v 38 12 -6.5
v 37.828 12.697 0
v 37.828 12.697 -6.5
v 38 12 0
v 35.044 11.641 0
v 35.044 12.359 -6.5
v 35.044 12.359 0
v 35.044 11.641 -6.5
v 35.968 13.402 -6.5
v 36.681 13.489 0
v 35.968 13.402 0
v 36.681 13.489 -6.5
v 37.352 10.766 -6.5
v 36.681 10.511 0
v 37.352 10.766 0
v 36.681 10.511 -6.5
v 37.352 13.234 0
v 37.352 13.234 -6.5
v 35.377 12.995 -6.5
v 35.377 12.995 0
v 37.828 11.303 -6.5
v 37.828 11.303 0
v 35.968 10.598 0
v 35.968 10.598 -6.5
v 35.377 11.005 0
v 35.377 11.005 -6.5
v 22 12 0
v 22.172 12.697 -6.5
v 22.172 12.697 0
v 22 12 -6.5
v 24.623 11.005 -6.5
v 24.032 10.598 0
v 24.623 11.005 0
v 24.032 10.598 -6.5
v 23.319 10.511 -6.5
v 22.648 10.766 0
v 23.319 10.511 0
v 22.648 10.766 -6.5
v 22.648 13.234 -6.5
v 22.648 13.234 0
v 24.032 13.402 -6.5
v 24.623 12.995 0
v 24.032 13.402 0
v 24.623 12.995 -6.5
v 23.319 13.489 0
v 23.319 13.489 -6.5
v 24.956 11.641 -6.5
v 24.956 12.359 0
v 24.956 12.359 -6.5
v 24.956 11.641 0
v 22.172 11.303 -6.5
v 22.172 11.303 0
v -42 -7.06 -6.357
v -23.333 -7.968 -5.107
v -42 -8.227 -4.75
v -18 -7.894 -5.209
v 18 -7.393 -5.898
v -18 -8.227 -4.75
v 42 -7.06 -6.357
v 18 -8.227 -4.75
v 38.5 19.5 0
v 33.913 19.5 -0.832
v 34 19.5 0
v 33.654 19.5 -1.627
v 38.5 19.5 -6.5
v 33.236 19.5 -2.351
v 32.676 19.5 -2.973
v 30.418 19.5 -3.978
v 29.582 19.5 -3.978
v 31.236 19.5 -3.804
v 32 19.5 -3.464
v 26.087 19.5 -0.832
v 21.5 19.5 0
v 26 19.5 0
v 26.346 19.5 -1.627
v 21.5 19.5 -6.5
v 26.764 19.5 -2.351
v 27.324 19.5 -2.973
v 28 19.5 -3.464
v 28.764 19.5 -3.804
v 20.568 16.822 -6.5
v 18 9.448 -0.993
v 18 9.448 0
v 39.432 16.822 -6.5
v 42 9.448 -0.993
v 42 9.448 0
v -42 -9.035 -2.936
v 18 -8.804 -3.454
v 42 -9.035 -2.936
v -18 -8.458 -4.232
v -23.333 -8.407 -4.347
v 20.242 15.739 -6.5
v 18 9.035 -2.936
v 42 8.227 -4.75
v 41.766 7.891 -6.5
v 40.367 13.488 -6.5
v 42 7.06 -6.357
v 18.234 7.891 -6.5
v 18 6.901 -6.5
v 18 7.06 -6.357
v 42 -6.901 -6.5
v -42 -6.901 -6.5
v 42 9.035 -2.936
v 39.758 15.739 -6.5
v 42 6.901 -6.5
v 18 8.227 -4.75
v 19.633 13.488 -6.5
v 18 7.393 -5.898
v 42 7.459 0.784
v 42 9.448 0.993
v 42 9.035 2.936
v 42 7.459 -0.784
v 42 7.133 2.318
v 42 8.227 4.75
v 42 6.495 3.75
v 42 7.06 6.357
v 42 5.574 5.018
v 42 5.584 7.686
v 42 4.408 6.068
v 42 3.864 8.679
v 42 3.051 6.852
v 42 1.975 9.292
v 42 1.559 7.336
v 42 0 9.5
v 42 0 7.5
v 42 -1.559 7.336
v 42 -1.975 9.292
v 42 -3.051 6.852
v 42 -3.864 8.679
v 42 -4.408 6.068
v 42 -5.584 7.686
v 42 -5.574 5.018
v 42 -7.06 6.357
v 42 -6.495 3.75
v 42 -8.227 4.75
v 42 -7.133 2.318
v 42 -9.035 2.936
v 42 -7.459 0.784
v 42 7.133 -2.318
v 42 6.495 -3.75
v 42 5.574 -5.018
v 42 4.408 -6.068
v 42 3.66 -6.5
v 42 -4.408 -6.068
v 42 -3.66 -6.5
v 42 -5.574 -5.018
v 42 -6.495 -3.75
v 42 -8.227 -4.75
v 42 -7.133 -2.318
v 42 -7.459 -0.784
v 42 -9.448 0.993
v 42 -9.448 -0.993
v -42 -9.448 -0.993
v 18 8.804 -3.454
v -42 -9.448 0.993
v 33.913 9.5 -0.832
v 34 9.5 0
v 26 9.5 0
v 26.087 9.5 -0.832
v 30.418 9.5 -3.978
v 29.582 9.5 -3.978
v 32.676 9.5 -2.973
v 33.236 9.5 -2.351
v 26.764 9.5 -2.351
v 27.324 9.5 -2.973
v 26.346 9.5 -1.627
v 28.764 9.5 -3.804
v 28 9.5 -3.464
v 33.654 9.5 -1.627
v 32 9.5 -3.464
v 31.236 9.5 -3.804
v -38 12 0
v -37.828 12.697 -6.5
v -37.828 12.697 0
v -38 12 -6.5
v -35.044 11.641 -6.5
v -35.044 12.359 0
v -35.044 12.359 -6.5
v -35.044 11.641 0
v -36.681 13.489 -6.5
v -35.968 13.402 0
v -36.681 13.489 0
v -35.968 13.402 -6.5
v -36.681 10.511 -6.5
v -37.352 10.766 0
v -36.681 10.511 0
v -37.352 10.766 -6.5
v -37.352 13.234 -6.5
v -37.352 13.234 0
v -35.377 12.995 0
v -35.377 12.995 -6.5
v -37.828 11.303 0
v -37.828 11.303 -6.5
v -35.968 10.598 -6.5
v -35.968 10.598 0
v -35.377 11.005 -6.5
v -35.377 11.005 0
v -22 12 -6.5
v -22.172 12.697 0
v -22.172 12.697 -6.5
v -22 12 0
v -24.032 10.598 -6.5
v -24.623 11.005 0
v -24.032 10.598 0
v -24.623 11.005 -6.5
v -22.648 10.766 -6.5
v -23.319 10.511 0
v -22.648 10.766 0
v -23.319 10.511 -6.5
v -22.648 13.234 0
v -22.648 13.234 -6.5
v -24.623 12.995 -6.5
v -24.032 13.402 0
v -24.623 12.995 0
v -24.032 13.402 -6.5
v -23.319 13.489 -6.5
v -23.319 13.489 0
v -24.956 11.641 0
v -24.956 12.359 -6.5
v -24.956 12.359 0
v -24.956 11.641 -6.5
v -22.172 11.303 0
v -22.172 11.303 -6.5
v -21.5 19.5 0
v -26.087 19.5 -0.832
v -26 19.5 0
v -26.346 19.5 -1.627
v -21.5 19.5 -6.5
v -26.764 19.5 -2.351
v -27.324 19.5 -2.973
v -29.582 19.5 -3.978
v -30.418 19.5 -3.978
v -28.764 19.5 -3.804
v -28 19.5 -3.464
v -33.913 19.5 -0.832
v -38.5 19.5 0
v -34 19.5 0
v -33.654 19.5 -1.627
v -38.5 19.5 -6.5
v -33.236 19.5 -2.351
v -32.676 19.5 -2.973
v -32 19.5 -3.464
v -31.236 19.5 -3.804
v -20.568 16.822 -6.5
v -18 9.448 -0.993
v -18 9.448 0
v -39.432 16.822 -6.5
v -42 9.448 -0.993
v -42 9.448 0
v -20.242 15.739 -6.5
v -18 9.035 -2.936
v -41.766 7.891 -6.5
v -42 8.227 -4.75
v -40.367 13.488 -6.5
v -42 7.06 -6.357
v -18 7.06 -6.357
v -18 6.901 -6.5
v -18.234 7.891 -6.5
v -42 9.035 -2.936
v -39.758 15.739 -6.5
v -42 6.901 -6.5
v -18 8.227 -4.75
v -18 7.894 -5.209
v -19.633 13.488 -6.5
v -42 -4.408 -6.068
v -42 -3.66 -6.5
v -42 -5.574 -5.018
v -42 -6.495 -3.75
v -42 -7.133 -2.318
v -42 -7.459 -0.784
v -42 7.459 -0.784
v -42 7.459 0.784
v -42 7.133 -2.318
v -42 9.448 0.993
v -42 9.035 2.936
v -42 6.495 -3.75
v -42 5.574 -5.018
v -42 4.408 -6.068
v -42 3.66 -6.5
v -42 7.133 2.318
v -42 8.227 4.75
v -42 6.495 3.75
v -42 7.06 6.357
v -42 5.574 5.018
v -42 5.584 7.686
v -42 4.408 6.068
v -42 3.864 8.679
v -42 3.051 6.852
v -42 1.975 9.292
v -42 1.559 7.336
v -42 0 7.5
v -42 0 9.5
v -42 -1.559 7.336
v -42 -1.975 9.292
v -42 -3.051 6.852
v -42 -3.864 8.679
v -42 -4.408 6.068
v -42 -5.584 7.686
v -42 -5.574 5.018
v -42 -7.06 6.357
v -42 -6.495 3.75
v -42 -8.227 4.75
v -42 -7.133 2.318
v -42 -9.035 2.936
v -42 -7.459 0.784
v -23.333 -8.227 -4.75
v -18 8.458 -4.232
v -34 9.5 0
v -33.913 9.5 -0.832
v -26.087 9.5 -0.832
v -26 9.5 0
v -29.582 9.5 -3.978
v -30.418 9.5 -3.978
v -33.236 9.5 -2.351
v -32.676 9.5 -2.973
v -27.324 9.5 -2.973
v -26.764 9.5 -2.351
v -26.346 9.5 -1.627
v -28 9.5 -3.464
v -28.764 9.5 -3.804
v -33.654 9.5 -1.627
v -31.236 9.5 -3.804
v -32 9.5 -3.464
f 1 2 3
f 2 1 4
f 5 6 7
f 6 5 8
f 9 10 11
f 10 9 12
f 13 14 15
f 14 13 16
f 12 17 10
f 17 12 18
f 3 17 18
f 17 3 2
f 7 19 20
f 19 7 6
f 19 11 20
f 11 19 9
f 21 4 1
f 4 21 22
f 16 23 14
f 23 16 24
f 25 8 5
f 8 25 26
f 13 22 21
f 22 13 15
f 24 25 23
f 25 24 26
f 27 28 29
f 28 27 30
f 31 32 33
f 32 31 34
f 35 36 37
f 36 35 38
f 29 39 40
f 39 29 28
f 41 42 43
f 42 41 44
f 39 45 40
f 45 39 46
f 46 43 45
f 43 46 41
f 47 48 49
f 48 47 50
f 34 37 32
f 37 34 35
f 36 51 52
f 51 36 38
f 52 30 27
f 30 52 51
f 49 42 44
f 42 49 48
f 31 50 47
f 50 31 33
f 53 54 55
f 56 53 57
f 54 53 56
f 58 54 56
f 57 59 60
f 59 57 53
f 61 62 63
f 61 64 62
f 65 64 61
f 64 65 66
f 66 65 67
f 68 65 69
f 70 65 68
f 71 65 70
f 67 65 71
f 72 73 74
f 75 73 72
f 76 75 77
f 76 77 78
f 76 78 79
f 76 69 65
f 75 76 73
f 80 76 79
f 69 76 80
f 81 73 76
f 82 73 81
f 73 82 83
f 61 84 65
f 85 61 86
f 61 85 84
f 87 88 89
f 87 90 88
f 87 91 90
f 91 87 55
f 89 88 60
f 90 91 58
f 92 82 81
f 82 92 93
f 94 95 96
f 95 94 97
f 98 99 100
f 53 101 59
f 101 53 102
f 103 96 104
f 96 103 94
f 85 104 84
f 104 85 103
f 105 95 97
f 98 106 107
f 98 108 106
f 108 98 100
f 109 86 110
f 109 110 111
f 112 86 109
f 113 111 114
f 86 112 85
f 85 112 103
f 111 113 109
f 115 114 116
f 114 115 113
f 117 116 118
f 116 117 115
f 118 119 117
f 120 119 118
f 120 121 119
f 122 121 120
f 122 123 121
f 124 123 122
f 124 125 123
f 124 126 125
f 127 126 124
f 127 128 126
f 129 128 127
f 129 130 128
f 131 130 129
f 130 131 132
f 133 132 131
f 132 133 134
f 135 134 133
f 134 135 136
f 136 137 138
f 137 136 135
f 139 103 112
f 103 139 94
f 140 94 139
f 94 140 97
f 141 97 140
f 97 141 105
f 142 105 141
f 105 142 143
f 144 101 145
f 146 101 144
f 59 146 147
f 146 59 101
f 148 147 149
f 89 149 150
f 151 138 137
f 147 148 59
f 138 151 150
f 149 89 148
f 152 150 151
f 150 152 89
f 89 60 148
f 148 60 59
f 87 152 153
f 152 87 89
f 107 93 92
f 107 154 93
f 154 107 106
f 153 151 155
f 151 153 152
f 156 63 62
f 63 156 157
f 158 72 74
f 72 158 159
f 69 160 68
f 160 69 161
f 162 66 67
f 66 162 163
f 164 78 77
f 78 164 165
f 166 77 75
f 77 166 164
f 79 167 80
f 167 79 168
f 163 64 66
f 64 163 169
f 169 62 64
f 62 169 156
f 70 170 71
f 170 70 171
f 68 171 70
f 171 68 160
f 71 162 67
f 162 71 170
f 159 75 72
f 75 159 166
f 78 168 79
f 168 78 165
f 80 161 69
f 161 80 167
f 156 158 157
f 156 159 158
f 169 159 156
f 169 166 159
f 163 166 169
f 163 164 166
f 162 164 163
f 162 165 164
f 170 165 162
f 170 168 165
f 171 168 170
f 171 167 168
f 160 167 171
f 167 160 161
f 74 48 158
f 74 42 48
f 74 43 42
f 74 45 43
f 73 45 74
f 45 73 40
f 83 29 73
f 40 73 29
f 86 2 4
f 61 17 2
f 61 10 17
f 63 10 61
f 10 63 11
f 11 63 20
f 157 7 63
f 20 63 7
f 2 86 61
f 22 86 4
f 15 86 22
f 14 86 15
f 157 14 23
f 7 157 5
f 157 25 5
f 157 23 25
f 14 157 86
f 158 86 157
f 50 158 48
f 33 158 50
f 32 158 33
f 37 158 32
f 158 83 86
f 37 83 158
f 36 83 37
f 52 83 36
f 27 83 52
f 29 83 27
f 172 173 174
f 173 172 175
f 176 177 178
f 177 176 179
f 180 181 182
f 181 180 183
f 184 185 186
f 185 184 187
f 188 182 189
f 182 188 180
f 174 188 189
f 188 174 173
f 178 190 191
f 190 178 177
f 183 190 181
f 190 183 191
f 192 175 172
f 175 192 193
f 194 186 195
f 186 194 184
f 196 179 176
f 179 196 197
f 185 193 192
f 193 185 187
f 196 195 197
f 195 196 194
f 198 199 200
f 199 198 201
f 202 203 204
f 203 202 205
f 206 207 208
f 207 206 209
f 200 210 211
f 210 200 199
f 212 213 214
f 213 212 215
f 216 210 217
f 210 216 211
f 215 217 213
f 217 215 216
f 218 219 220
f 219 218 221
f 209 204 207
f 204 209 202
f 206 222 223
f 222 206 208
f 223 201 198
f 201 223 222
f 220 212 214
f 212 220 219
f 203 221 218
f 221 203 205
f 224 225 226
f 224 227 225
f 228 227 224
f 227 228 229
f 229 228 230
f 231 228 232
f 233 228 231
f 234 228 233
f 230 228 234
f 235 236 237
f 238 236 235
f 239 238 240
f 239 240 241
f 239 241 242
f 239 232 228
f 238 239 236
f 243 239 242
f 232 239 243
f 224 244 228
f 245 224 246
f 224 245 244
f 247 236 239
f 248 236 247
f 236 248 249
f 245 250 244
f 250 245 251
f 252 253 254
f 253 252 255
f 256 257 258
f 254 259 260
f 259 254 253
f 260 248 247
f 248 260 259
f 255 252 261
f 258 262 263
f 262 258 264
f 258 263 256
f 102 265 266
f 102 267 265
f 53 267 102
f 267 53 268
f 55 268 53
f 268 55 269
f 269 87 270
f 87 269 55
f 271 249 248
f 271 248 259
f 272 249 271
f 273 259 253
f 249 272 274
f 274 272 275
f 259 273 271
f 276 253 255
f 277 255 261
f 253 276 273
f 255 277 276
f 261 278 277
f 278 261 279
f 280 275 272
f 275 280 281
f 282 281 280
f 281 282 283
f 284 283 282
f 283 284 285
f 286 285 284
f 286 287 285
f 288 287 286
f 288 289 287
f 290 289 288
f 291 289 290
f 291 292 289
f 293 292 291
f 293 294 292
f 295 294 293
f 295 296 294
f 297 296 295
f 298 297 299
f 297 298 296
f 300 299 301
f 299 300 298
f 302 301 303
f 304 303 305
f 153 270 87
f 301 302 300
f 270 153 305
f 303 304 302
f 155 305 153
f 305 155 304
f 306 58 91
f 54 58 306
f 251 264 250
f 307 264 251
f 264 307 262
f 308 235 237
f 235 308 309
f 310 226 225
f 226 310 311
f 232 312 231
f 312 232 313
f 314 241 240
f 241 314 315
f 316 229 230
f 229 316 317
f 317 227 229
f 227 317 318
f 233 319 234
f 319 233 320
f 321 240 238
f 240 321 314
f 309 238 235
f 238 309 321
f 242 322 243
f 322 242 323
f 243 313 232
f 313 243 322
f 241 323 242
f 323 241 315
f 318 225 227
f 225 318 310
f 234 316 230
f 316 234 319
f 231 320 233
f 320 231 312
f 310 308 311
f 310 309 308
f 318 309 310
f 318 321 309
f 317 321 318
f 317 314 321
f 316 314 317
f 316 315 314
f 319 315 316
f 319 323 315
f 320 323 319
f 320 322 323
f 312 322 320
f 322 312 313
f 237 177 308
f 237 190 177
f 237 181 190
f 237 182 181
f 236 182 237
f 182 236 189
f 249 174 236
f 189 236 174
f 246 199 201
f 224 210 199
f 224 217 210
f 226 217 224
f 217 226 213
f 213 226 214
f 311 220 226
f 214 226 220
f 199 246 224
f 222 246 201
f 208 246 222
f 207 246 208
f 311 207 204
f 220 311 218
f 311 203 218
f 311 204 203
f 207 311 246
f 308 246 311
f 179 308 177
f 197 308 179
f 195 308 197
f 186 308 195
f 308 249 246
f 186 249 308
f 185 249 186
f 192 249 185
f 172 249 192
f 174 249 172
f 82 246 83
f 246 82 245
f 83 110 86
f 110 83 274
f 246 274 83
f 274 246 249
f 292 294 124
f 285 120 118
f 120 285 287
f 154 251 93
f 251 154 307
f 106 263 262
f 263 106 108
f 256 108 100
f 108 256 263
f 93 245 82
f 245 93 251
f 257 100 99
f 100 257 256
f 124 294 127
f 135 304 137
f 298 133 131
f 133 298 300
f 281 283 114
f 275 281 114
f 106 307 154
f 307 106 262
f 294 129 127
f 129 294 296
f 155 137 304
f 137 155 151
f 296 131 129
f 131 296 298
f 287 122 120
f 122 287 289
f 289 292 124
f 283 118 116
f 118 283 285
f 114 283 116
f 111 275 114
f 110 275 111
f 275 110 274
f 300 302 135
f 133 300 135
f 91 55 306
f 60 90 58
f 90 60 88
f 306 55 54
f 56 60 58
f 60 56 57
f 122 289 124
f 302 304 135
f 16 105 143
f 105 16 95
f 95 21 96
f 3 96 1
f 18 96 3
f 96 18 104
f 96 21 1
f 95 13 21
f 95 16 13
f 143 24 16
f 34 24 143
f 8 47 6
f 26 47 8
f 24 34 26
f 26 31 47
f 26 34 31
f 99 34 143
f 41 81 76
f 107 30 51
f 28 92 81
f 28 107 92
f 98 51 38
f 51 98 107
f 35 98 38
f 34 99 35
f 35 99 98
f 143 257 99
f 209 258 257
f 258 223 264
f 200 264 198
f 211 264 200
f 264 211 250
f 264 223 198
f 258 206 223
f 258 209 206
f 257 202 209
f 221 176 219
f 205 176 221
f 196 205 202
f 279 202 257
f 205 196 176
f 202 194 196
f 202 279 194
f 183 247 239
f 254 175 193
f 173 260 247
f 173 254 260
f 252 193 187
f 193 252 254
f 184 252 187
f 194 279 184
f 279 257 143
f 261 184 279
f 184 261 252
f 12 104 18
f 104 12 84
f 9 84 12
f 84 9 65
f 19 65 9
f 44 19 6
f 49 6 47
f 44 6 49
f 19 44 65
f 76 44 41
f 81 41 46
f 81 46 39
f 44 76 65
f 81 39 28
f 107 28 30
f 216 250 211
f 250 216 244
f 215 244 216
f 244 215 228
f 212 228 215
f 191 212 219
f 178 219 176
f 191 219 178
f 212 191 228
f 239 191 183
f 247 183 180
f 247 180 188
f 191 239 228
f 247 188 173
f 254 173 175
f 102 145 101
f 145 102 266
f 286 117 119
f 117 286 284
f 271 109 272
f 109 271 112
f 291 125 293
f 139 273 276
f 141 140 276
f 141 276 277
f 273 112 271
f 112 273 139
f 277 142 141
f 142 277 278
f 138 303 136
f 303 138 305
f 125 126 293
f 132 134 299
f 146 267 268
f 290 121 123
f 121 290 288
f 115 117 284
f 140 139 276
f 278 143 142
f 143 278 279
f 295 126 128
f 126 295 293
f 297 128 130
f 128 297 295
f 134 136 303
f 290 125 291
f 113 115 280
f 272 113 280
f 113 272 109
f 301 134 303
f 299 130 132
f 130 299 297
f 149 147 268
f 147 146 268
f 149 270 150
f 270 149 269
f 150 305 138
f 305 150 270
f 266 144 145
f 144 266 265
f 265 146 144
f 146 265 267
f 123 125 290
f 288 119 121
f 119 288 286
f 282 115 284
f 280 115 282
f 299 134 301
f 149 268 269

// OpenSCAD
$fs=.75;

difference(){
	difference() {
		union() {
			difference() {
				rotate(a = [0, 90, 0]) {
					translate(v = [-0.0000000000, -0.0000000000, -42.0000000000]) {
						cylinder(d = 19.0000000000, h = 84.0000000000);
					}
				}
			}
			union() {
				translate(v = [30.0000000000, 0, 0]) {
					intersection() {
						difference() {
							hull() {
								union() {
									rotate(a = [0, 90, 0]) {
										translate(v = [-0.0000000000, -0.0000000000, -12.0000000000]) {
											cylinder(d = 19.0000000000, h = 24.0000000000);
										}
									}
									translate(v = [0, 9.5000000000, 0]) {
										translate(v = [0.0000000000, 5.0000000000, 0.0000000000]) {
											translate(v = [-8.5000000000, -5.0000000000, -8.5000000000]) {
												cube(size = [17.0000000000, 10, 17.0000000000]);
											}
										}
									}
								}
							}
							translate(v = [0, 9.5000000000, 0]) {
								rotate(a = [-90, 0, 0]) {
									cylinder(d = 8.0000000000, h = 10);
								}
							}
							union() {
								translate(v = [6.5000000000, 12, 0]) {
									translate(v = [-0.0000000000, -0.0000000000, -9.5000000000]) {
										cylinder(d = 3.0000000000, h = 19.0000000000);
									}
								}
								mirror(v = [1, 0, 0]) {
									translate(v = [6.5000000000, 12, 0]) {
										translate(v = [-0.0000000000, -0.0000000000, -9.5000000000]) {
											cylinder(d = 3.0000000000, h = 19.0000000000);
										}
									}
								}
							}
						}
						translate(v = [0, 0, -25.0000000000]) {
							translate(v = [-25.0000000000, -25.0000000000, -25.0000000000]) {
								cube(size = 50);
							}
						}
					}
				}
				mirror(v = [1, 0, 0]) {
					translate(v = [30.0000000000, 0, 0]) {
						intersection() {
							difference() {
								hull() {
									union() {
										rotate(a = [0, 90, 0]) {
											translate(v = [-0.0000000000, -0.0000000000, -12.0000000000]) {
												cylinder(d = 19.0000000000, h = 24.0000000000);
											}
										}
										translate(v = [0, 9.5000000000, 0]) {
											translate(v = [0.0000000000, 5.0000000000, 0.0000000000]) {
												translate(v = [-8.5000000000, -5.0000000000, -8.5000000000]) {
													cube(size = [17.0000000000, 10, 17.0000000000]);
												}
											}
										}
									}
								}
								translate(v = [0, 9.5000000000, 0]) {
									rotate(a = [-90, 0, 0]) {
										cylinder(d = 8.0000000000, h = 10);
									}
								}
								union() {
									translate(v = [6.5000000000, 12, 0]) {
										translate(v = [-0.0000000000, -0.0000000000, -9.5000000000]) {
											cylinder(d = 3.0000000000, h = 19.0000000000);
										}
									}
									mirror(v = [1, 0, 0]) {
										translate(v = [6.5000000000, 12, 0]) {
											translate(v = [-0.0000000000, -0.0000000000, -9.5000000000]) {
												cylinder(d = 3.0000000000, h = 19.0000000000);
											}
										}
									}
								}
							}
							translate(v = [0, 0, -25.0000000000]) {
								translate(v = [-25.0000000000, -25.0000000000, -25.0000000000]) {
									cube(size = 50);
								}
							}
						}
					}
				}
			}
		}
		translate(v = [0, 0, -6.5000000000]) {
			translate(v = [0, 0, -500.0000000000]) {
				translate(v = [-500.0000000000, -500.0000000000, -500.0000000000]) {
					cube(size = 1000);
				}
			}
		}
	}
	/* Holes Below*/
	difference(){
		union(){
			difference(){
				rotate(a = [0, 90, 0]) {
					translate(v = [-0.0000000000, -0.0000000000, -42.0000000000]) {
						cylinder(d = 15.0000000000, h = 84.0000000000);
					}
				}
			}
		}
	} /* End Holes */ 
}
/***********************************************
*********      SolidPython code:      **********
************************************************
 
from solid import *
from solid import extensions

class Object:
    pass


rod=Object()
rod.d=8.0

nema17 = Object()
nema17.side = 43
nema17.holeDistance = 31.0
nema17.screwD=3

bearing = Object()
bearing.outD = 15.0
bearing.length = 24.0

# to place the rod supports on top of the nema17
supportDepth=10
xSupport = ( cube([supportDepth,nema17.side,rod.d/2+1]).align('left','bottom')
             - cylinder(d=rod.d, h=supportDepth).rot(y=90).move(z=-.5)
             - cylinder(d=nema17.screwD,h=12).center().move(x=5,y=nema17.holeDistance/2.).mirrorCopy('y')
           ).rot(x=180)


bearingShape = cylinder(d=bearing.outD, h= bearing.length+1).center()

#minimal y cart, z motor will be placed in between the rails
yRodDistance = 60.0 # rounding up from nema17.side + bearing.outD
wall=2.0
cartWidth = 2*bearing.length
yBearings = bearingShape.move(z=bearing.length/2).mirrorCopy('z').move(x=yRodDistance/2).mirrorCopy('x')
yCart = ( ( cylinder(d= bearing.outD + 2*wall, h= cartWidth).center().rot(x=90).move(x=yRodDistance/2).mirrorCopy('x')
          + cube([yRodDistance, cartWidth, bearing.outD/2+wall]).align('bottom').move(z=-bearing.outD/2-wall)
          + cube([yRodDistance+bearing.outD+2*wall, cartWidth, bearing.outD/2+wall]).align('top').move(z=bearing.outD/2+wall)

          ) - yBearings.rot(x=90)
            - cube([nema17.side, cartWidth, bearing.outD/2-3]).align('top')
            - cube([nema17.side, cartWidth, bearing.outD]).align('bottom')
            - cube([yRodDistance+20, cartWidth, 3]).align('bottom').move(z=-bearing.outD/2-wall)
            - cylinder(d=3,h=10).move([nema17.holeDistance/2, nema17.holeDistance/2, -bearing.outD/2]).mirrorCopy('x').mirrorCopy('y').debug()
            - cylinder(d=nema17.holeDistance, h =10).move(z=-bearing.outD/2)
          )



#supports for holding the y rods in from the x bearings
bearingCover = cylinder(d= bearing.outD + 2*wall, h= bearing.length).center().rot(y=90)
baseBlock = hull( bearingCover
                  + cube([bearing.outD+2,10,bearing.outD+2]).align('back').move(y=bearing.outD/2+wall))
capScrews = cylinder(d=3., h=bearing.outD + 2*wall).center().move(x=rod.d/2+3./2+1,y=12).mirrorCopy('x')
rodHole = cylinder(d=rod.d,h=10).rot(x=-90).move(y=bearing.outD/2+wall)
#capTopBase = cube([bearing.length, 11, bearing.outD]).center('x').move(y=bearing.outD/2+wall)
#capTopBase = polygon([[0,0],[0,10],[10,10],[10,-3]]).linear_extrude(bearing.length,True).rot(y=-90).move(y=bearing.outD/2+wall)
capTopBase = cube([bearing.length, 20, bearing.outD]).center('x')-bearingCover

baseSupport = baseBlock - rodHole - capScrews

ySupport = part(cylinder(d= bearing.outD + 2*wall, h= yRodDistance + bearing.length).center().rot(y=90)
                 - hole(cylinder(d= bearing.outD, h= yRodDistance + bearing.length).center().rot(y=90))
                 + ( baseSupport
                     * cube(50).align('top')
                   ).move(x=yRodDistance/2).mirrorCopy('x')
                 - cube(1000).align('top').move(z=-bearing.outD/2+1)
                 )

ySupportRodCap = ( baseSupport
                * capTopBase
                - cube([bearing.length,50,1]).align('bottom')
                - cube([bearing.length,10,10]).center('xy')
                )

#support for z rods placed on the falt surface of the yCart above the bearings
zRodDistance = 31.
rodSupport = (cylinder(d=rod.d + 3, h=6) - cylinder(d=rod.d, h=6+1)).move(y=zRodDistance / 2)
beltGuide = ( cube([bearing.outD, bearing.length-zRodDistance/2, 6]).center('x')
              - cylinder(d=rod.d + 6,h=6+1)
              - cube([1,20,6+1]).center('x')).move(y=zRodDistance/2)
zSupport = ( cube([bearing.outD,2*bearing.length,wall]).center('xy')
             + rodSupport.move(z=wall).mirrorCopy('y')
             + beltGuide.move(z=wall).mirrorCopy('y')
           )

zstepper = cube([nema17.side,nema17.side,34]).center('xy').move(z=-bearing.outD/2).color('gray')


yCartZSupport = yCart + zSupport.move(x=yRodDistance/2 ,z=bearing.outD/2)


scene = ( xSupport.move(x=-100)
          + ySupport + ySupportRodCap.move(x=-yRodDistance / 2, z=3)
          + (yCartZSupport ).move(y=50)
        )
scene = yCartZSupport

scad_render_to_file(scene, 'routerParts.scad', '$fs=.75;')

scad_render_to_file(xSupport, 'routerParts_xSupport.scad', '$fs=.75;')
scad_render_to_file(ySupport, 'routerParts_ySupport.scad', '$fs=.75;')
scad_render_to_file(ySupportRodCap, 'routerParts_ySupportCap.scad', '$fs=.75;')
scad_render_to_file(yCartZSupport, 'routerParts_yCart.scad', '$fs=.75;')
 
 
************************************************/
